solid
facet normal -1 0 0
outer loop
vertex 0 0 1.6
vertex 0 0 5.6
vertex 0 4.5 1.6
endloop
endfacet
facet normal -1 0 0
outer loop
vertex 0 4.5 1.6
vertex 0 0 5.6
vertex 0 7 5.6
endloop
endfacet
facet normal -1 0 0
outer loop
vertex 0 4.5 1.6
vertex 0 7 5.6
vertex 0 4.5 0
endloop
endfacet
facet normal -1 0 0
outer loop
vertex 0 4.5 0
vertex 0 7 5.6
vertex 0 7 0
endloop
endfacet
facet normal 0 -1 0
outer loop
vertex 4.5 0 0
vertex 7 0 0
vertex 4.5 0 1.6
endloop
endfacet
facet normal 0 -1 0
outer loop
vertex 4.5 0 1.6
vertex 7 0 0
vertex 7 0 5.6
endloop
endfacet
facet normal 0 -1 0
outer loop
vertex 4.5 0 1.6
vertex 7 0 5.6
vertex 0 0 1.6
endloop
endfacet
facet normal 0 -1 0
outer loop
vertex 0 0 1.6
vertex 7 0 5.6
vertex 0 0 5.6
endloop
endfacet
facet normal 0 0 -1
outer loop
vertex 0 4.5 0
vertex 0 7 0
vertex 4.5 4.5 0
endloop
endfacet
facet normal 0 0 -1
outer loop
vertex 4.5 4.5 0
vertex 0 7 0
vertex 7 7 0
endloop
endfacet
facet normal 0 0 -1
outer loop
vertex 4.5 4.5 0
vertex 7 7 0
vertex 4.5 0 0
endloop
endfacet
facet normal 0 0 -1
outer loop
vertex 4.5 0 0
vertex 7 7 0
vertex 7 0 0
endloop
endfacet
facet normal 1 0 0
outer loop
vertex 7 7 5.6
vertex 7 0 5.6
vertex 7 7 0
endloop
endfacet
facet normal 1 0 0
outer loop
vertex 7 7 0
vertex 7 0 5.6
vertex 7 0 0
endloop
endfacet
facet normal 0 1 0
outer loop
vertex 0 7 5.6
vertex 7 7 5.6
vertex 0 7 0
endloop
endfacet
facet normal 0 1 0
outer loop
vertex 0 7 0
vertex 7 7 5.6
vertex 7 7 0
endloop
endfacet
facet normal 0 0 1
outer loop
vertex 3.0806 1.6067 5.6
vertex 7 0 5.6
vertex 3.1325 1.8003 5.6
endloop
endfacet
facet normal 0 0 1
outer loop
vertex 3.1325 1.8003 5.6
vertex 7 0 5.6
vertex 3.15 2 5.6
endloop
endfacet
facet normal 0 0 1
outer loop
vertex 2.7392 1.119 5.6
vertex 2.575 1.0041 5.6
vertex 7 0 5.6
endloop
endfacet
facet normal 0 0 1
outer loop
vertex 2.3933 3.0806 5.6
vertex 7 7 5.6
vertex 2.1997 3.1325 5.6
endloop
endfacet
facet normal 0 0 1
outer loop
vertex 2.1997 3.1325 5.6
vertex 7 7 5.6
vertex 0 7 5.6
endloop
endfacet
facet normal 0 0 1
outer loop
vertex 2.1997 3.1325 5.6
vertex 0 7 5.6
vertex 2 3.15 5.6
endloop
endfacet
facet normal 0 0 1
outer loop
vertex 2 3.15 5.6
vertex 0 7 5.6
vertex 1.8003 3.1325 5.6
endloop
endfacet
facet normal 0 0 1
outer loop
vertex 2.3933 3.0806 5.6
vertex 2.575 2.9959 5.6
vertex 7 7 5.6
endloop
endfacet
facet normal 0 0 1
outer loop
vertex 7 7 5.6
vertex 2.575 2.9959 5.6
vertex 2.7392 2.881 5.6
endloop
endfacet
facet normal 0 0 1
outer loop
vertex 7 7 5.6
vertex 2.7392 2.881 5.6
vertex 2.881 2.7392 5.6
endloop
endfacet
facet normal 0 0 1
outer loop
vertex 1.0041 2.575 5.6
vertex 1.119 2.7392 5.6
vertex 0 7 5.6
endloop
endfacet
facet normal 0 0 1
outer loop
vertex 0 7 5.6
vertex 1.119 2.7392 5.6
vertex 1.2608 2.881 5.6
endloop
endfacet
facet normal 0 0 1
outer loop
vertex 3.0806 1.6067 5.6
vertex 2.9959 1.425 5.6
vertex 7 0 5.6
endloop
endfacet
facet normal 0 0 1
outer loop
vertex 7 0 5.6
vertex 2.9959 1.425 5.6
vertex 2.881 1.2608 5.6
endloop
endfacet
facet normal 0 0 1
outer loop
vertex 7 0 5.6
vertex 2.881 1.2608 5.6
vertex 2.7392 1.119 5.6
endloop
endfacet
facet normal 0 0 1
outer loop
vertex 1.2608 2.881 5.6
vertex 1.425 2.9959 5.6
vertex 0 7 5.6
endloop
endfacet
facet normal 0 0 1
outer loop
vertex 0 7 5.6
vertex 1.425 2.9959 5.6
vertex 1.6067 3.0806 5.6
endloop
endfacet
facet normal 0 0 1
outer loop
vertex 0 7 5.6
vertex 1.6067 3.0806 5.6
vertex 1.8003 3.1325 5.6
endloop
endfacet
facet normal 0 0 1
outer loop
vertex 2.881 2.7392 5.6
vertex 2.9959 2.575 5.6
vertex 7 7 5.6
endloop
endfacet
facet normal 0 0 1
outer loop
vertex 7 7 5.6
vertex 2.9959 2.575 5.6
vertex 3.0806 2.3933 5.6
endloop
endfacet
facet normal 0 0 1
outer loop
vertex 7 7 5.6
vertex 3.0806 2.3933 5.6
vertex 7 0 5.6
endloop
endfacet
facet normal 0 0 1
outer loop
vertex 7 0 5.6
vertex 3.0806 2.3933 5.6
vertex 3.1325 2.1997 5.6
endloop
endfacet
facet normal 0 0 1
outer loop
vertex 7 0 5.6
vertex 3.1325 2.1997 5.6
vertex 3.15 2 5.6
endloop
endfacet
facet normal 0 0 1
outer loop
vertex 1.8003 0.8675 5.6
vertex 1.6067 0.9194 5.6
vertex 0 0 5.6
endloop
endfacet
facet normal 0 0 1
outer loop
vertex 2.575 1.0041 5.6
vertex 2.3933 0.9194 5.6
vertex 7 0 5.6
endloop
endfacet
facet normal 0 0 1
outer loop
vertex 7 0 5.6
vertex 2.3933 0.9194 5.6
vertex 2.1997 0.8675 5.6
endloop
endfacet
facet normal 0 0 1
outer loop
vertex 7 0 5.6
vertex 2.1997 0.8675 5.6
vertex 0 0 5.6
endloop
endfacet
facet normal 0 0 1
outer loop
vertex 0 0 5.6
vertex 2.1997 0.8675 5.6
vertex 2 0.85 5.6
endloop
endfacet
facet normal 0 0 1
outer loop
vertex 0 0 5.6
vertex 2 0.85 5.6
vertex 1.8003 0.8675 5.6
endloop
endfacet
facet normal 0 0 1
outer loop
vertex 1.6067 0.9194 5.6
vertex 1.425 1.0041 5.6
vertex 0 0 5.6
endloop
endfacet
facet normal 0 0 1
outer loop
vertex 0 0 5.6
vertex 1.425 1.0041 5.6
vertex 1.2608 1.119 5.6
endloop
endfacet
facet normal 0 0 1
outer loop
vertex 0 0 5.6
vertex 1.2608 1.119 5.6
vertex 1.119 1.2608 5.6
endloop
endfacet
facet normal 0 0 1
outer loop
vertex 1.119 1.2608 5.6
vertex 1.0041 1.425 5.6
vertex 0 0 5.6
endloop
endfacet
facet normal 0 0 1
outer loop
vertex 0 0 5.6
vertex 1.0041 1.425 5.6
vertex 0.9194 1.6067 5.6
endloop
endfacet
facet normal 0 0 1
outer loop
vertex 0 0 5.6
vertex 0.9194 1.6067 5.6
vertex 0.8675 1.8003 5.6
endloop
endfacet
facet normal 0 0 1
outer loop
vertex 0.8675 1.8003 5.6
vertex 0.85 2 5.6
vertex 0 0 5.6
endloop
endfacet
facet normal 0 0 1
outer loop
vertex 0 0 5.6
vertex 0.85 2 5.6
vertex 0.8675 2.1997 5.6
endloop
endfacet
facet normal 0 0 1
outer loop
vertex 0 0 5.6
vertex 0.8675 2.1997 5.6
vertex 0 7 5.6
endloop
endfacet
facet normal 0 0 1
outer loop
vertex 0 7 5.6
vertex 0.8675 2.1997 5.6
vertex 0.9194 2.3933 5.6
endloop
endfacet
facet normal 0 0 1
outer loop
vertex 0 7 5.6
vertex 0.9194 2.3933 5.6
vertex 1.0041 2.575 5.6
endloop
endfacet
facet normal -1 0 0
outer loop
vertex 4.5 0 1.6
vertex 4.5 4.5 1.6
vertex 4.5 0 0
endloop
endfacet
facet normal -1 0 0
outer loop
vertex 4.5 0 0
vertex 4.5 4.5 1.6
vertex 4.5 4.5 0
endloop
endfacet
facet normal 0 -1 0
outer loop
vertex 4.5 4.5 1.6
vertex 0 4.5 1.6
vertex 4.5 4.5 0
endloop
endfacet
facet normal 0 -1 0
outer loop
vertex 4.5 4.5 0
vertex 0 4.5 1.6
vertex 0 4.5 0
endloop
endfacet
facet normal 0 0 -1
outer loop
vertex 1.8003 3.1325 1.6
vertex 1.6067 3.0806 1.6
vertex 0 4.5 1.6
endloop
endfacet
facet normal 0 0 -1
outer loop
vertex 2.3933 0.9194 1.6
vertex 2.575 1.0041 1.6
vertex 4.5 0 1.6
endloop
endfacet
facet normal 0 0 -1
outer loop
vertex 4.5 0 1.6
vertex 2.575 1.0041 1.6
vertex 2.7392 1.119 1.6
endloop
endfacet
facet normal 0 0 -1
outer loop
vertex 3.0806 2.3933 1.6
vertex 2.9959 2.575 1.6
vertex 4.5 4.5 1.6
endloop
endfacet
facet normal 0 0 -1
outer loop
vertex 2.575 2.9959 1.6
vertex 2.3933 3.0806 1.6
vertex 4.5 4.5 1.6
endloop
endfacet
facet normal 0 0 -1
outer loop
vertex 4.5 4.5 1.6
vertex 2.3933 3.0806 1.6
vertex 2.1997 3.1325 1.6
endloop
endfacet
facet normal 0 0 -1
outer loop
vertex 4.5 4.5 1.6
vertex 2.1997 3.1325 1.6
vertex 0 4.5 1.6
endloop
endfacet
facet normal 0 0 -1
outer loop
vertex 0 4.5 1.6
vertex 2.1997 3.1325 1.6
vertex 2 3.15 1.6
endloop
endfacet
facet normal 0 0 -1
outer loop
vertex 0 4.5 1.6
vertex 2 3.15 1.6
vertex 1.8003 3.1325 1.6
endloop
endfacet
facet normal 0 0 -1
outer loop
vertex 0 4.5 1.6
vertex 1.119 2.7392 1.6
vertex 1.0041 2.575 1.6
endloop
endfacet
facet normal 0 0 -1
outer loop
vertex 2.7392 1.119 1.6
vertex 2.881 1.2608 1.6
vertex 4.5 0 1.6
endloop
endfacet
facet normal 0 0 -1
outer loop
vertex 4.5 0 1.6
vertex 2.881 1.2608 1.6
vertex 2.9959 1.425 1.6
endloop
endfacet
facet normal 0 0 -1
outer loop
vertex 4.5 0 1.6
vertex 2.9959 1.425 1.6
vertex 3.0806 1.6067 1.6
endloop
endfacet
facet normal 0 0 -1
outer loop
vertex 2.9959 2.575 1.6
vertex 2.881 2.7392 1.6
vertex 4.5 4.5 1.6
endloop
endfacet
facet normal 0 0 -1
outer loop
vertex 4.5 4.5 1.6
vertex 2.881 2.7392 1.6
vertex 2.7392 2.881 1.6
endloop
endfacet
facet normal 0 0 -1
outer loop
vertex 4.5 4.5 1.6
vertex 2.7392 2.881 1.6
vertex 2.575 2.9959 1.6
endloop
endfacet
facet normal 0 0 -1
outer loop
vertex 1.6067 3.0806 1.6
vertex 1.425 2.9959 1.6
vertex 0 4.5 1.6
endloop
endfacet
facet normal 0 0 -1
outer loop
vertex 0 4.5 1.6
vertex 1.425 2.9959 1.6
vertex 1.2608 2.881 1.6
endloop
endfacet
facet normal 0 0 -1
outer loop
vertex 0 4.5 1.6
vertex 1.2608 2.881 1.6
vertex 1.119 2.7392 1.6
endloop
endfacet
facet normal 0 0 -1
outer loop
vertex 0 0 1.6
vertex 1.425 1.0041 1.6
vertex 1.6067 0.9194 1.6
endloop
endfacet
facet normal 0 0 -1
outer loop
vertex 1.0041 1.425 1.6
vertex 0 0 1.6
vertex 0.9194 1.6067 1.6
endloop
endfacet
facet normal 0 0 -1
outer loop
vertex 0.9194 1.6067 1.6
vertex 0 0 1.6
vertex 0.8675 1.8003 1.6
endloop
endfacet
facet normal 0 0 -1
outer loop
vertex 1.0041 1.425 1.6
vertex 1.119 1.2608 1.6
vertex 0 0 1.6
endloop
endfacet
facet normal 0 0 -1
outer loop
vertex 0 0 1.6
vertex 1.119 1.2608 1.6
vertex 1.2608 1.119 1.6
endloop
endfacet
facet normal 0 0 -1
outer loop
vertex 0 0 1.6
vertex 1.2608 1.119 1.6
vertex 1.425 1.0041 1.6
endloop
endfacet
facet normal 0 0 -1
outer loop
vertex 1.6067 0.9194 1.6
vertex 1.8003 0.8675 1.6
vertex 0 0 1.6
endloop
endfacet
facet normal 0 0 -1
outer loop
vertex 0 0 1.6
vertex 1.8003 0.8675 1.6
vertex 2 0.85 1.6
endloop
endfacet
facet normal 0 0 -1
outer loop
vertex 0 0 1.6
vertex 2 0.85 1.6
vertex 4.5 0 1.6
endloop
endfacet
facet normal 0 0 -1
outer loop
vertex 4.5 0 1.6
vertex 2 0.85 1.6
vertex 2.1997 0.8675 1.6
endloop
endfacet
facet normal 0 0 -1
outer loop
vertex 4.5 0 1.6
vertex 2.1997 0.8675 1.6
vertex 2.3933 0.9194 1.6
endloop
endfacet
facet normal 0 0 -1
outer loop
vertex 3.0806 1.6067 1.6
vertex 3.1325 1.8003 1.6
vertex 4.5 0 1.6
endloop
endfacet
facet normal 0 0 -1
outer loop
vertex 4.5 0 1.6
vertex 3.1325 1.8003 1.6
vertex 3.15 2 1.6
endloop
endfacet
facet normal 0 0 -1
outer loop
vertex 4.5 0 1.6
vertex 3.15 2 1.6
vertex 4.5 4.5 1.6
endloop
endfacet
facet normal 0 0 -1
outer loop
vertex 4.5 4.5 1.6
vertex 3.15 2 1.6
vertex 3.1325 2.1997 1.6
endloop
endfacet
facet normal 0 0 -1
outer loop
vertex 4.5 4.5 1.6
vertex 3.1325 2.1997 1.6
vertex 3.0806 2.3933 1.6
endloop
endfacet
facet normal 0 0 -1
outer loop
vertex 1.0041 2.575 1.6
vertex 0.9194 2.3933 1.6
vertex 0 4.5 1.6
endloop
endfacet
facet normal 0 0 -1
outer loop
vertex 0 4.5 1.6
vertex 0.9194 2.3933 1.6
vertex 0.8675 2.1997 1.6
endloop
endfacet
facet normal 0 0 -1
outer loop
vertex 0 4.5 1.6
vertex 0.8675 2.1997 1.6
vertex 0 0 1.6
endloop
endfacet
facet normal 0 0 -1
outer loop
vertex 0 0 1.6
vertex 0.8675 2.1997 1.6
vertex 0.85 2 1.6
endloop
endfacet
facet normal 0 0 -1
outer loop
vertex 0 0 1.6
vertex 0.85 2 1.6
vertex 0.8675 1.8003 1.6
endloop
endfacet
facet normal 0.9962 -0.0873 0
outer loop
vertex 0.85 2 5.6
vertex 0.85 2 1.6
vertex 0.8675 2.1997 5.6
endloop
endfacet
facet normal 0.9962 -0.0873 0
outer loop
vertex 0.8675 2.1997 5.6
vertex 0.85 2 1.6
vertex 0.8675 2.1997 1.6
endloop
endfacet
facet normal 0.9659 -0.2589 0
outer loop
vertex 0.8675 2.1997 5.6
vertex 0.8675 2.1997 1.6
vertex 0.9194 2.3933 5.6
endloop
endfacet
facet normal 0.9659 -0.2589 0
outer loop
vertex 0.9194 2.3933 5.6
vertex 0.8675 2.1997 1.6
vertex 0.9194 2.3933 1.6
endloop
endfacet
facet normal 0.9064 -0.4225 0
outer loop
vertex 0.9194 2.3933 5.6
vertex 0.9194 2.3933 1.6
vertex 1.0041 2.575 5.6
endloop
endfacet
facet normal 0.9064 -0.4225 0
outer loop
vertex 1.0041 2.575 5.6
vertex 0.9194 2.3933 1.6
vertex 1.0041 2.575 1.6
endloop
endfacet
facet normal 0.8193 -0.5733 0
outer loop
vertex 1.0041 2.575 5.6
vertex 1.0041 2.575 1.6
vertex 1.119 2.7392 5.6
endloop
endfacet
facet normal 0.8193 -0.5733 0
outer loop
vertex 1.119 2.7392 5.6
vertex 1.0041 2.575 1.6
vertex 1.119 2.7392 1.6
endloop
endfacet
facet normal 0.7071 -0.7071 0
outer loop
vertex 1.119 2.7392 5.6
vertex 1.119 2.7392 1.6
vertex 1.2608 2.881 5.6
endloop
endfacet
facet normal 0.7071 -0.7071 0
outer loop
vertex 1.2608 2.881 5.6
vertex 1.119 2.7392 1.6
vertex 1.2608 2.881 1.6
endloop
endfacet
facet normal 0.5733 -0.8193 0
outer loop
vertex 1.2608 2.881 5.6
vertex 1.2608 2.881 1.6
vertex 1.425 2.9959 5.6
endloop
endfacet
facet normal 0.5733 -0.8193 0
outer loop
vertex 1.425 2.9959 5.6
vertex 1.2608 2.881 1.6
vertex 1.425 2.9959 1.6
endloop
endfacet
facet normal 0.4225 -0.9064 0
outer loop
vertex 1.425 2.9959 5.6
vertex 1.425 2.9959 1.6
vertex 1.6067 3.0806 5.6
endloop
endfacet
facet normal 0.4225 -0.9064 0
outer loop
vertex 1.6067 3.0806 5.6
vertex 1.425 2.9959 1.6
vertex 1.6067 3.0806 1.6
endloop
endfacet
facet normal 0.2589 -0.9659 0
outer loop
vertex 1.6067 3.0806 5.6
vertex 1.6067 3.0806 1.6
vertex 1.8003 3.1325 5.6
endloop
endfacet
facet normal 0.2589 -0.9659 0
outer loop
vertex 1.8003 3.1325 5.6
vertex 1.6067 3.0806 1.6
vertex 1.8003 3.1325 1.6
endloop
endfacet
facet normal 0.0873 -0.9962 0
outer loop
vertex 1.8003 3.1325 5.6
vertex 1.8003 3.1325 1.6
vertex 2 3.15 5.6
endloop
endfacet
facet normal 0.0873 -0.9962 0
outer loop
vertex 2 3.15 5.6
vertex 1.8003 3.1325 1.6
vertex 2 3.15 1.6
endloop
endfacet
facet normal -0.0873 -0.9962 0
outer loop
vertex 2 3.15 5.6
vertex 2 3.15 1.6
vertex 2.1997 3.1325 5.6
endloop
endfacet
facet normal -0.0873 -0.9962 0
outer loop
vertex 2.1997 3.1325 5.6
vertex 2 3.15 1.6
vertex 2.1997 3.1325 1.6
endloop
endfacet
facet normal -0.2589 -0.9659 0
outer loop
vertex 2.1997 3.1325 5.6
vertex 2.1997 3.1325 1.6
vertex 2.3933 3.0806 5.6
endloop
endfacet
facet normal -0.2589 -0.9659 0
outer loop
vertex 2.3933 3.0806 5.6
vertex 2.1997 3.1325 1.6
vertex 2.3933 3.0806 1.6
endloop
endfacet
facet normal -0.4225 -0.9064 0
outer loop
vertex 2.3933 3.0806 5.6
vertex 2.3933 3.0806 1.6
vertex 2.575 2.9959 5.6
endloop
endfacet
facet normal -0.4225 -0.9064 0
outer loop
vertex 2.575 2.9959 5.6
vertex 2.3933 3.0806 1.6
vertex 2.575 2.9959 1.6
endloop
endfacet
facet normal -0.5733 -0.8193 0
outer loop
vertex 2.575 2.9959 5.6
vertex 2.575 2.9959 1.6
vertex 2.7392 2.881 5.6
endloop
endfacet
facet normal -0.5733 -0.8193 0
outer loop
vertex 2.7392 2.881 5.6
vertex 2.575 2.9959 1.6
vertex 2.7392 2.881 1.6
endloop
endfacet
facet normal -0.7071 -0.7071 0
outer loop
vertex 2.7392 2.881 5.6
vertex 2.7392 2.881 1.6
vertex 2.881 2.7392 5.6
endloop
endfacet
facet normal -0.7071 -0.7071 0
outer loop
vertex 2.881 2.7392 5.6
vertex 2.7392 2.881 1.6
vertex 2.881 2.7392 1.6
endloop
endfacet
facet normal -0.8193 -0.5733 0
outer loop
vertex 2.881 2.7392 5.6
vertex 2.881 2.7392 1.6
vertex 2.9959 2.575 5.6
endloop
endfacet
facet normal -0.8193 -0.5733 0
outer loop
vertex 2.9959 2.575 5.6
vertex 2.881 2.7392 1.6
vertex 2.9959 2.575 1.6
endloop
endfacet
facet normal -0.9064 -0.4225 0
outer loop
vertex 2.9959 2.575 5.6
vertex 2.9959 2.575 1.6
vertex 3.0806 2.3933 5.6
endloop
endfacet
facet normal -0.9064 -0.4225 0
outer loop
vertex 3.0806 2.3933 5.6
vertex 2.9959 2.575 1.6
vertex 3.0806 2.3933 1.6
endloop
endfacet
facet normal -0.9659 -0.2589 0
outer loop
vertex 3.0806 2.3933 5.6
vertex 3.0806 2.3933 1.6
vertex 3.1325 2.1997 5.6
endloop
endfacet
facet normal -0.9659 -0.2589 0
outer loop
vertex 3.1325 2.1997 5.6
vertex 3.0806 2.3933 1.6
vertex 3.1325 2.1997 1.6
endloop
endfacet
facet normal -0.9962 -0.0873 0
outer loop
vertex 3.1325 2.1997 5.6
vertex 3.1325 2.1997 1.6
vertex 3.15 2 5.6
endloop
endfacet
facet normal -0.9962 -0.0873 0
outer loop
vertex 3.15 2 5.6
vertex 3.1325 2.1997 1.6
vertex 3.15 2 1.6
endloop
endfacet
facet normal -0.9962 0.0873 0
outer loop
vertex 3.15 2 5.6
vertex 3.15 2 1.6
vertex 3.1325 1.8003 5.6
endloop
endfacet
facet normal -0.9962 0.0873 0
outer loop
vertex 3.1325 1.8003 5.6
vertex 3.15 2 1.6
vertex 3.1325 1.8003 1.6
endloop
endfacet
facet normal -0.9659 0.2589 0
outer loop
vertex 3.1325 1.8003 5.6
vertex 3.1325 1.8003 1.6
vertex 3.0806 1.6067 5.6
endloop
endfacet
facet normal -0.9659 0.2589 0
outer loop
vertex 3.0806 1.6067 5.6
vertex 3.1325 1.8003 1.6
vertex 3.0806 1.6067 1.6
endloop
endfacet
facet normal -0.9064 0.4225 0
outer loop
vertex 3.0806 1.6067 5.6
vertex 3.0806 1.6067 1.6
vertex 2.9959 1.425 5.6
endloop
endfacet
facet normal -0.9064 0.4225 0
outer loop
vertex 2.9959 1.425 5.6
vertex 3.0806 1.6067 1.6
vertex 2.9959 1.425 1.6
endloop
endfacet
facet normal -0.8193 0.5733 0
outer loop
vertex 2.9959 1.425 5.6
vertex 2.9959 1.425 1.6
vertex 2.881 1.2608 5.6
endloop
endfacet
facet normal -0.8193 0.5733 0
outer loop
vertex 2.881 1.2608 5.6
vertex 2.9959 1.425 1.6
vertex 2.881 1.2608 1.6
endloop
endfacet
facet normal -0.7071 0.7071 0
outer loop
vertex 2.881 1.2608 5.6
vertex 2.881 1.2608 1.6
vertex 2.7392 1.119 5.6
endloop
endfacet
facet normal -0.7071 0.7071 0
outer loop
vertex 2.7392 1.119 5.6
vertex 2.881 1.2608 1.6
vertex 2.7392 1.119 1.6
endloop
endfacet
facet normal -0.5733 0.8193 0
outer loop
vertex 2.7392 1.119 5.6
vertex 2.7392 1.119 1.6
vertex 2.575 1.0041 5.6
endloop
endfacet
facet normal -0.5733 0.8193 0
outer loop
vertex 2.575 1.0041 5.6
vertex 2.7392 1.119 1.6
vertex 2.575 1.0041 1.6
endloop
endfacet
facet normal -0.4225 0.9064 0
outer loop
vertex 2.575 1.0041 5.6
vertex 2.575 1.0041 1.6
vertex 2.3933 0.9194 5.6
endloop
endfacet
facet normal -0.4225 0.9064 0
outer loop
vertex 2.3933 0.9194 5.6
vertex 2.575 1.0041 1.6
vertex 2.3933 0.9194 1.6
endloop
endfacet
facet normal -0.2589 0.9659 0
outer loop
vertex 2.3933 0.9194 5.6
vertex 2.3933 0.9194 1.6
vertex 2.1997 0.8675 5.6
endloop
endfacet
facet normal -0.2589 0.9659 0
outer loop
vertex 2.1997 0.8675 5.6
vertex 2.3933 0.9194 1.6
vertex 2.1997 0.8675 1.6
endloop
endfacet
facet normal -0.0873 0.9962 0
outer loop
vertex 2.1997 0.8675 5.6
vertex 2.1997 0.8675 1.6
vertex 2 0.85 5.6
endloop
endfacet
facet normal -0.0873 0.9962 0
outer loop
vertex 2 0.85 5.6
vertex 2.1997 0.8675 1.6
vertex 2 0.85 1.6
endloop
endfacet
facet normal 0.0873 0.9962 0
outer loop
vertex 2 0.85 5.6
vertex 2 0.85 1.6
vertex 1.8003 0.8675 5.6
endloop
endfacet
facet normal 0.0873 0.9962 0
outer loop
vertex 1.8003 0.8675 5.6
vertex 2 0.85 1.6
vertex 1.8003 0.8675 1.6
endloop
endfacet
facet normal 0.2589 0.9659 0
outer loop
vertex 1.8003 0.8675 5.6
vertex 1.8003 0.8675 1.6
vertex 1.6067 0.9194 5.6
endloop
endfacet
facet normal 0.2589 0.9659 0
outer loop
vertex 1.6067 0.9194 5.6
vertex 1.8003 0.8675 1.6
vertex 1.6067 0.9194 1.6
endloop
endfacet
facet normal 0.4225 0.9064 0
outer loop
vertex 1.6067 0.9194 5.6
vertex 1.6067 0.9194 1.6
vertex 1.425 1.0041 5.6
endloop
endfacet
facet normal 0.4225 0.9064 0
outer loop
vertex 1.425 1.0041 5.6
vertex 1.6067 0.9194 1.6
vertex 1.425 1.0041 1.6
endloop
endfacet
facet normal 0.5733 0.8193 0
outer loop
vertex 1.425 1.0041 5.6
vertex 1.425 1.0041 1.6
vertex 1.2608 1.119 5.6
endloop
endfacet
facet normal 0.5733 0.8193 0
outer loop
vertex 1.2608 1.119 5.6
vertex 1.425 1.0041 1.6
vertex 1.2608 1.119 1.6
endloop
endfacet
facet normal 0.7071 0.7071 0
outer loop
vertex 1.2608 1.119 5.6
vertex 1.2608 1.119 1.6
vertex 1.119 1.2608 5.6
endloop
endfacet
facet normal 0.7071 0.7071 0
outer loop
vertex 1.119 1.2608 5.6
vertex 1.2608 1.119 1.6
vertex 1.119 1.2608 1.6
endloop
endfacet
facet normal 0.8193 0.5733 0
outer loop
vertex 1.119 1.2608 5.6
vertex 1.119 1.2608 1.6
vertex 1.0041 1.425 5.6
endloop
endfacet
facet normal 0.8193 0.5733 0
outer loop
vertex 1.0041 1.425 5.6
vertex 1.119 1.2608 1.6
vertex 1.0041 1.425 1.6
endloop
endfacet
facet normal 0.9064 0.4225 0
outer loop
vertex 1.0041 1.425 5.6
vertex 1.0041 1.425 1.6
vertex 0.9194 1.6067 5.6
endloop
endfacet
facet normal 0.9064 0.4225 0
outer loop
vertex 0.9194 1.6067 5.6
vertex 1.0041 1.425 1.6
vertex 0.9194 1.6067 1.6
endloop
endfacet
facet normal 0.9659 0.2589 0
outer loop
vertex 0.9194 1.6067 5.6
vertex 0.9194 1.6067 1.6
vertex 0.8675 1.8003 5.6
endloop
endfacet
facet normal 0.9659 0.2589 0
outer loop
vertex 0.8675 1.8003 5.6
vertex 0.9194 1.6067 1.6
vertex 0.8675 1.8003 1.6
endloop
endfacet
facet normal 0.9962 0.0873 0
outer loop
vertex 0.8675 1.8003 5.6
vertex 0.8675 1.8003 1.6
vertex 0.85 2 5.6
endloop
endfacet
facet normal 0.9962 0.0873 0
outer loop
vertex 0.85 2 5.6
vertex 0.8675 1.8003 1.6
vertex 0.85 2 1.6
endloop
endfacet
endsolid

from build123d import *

# Parameters (mm, degrees)
ESQUISSE1_W             = 7
ESQUISSE1_H             = 7
BOSS_EXTRU_1_DEPTH      = 5.6
ESQUISSE2_W             = 4.5
ESQUISSE2_H             = 4.5
ENL_V_MAT_EXTRU_1_DEPTH = 1.6
ESQUISSE3_R             = 1.15
ENL_V_MAT_EXTRU_2_DEPTH = 11.6


with BuildPart() as part:
    # Esquisse1 → Boss.-Extru.1 (new body)
    with BuildSketch(Plane.XY):
        with Locations((3.5, 3.5)):
            Rectangle(ESQUISSE1_W, ESQUISSE1_H)
    extrude(amount=BOSS_EXTRU_1_DEPTH)

    # Esquisse2 → Enlèv. mat.-Extru.1 (cut)
    with BuildSketch(Plane.XY):
        with Locations((2.25, 2.25)):
            Rectangle(ESQUISSE2_W, ESQUISSE2_H)
    extrude(amount=ENL_V_MAT_EXTRU_1_DEPTH, mode=Mode.SUBTRACT)

    # Esquisse3 → Enlèv. mat.-Extru.2 (cut)
    with BuildSketch(Plane.XY):
        with Locations((2, 2)):
            Circle(ESQUISSE3_R)
    extrude(amount=ENL_V_MAT_EXTRU_2_DEPTH, mode=Mode.SUBTRACT)


solid = part.part
